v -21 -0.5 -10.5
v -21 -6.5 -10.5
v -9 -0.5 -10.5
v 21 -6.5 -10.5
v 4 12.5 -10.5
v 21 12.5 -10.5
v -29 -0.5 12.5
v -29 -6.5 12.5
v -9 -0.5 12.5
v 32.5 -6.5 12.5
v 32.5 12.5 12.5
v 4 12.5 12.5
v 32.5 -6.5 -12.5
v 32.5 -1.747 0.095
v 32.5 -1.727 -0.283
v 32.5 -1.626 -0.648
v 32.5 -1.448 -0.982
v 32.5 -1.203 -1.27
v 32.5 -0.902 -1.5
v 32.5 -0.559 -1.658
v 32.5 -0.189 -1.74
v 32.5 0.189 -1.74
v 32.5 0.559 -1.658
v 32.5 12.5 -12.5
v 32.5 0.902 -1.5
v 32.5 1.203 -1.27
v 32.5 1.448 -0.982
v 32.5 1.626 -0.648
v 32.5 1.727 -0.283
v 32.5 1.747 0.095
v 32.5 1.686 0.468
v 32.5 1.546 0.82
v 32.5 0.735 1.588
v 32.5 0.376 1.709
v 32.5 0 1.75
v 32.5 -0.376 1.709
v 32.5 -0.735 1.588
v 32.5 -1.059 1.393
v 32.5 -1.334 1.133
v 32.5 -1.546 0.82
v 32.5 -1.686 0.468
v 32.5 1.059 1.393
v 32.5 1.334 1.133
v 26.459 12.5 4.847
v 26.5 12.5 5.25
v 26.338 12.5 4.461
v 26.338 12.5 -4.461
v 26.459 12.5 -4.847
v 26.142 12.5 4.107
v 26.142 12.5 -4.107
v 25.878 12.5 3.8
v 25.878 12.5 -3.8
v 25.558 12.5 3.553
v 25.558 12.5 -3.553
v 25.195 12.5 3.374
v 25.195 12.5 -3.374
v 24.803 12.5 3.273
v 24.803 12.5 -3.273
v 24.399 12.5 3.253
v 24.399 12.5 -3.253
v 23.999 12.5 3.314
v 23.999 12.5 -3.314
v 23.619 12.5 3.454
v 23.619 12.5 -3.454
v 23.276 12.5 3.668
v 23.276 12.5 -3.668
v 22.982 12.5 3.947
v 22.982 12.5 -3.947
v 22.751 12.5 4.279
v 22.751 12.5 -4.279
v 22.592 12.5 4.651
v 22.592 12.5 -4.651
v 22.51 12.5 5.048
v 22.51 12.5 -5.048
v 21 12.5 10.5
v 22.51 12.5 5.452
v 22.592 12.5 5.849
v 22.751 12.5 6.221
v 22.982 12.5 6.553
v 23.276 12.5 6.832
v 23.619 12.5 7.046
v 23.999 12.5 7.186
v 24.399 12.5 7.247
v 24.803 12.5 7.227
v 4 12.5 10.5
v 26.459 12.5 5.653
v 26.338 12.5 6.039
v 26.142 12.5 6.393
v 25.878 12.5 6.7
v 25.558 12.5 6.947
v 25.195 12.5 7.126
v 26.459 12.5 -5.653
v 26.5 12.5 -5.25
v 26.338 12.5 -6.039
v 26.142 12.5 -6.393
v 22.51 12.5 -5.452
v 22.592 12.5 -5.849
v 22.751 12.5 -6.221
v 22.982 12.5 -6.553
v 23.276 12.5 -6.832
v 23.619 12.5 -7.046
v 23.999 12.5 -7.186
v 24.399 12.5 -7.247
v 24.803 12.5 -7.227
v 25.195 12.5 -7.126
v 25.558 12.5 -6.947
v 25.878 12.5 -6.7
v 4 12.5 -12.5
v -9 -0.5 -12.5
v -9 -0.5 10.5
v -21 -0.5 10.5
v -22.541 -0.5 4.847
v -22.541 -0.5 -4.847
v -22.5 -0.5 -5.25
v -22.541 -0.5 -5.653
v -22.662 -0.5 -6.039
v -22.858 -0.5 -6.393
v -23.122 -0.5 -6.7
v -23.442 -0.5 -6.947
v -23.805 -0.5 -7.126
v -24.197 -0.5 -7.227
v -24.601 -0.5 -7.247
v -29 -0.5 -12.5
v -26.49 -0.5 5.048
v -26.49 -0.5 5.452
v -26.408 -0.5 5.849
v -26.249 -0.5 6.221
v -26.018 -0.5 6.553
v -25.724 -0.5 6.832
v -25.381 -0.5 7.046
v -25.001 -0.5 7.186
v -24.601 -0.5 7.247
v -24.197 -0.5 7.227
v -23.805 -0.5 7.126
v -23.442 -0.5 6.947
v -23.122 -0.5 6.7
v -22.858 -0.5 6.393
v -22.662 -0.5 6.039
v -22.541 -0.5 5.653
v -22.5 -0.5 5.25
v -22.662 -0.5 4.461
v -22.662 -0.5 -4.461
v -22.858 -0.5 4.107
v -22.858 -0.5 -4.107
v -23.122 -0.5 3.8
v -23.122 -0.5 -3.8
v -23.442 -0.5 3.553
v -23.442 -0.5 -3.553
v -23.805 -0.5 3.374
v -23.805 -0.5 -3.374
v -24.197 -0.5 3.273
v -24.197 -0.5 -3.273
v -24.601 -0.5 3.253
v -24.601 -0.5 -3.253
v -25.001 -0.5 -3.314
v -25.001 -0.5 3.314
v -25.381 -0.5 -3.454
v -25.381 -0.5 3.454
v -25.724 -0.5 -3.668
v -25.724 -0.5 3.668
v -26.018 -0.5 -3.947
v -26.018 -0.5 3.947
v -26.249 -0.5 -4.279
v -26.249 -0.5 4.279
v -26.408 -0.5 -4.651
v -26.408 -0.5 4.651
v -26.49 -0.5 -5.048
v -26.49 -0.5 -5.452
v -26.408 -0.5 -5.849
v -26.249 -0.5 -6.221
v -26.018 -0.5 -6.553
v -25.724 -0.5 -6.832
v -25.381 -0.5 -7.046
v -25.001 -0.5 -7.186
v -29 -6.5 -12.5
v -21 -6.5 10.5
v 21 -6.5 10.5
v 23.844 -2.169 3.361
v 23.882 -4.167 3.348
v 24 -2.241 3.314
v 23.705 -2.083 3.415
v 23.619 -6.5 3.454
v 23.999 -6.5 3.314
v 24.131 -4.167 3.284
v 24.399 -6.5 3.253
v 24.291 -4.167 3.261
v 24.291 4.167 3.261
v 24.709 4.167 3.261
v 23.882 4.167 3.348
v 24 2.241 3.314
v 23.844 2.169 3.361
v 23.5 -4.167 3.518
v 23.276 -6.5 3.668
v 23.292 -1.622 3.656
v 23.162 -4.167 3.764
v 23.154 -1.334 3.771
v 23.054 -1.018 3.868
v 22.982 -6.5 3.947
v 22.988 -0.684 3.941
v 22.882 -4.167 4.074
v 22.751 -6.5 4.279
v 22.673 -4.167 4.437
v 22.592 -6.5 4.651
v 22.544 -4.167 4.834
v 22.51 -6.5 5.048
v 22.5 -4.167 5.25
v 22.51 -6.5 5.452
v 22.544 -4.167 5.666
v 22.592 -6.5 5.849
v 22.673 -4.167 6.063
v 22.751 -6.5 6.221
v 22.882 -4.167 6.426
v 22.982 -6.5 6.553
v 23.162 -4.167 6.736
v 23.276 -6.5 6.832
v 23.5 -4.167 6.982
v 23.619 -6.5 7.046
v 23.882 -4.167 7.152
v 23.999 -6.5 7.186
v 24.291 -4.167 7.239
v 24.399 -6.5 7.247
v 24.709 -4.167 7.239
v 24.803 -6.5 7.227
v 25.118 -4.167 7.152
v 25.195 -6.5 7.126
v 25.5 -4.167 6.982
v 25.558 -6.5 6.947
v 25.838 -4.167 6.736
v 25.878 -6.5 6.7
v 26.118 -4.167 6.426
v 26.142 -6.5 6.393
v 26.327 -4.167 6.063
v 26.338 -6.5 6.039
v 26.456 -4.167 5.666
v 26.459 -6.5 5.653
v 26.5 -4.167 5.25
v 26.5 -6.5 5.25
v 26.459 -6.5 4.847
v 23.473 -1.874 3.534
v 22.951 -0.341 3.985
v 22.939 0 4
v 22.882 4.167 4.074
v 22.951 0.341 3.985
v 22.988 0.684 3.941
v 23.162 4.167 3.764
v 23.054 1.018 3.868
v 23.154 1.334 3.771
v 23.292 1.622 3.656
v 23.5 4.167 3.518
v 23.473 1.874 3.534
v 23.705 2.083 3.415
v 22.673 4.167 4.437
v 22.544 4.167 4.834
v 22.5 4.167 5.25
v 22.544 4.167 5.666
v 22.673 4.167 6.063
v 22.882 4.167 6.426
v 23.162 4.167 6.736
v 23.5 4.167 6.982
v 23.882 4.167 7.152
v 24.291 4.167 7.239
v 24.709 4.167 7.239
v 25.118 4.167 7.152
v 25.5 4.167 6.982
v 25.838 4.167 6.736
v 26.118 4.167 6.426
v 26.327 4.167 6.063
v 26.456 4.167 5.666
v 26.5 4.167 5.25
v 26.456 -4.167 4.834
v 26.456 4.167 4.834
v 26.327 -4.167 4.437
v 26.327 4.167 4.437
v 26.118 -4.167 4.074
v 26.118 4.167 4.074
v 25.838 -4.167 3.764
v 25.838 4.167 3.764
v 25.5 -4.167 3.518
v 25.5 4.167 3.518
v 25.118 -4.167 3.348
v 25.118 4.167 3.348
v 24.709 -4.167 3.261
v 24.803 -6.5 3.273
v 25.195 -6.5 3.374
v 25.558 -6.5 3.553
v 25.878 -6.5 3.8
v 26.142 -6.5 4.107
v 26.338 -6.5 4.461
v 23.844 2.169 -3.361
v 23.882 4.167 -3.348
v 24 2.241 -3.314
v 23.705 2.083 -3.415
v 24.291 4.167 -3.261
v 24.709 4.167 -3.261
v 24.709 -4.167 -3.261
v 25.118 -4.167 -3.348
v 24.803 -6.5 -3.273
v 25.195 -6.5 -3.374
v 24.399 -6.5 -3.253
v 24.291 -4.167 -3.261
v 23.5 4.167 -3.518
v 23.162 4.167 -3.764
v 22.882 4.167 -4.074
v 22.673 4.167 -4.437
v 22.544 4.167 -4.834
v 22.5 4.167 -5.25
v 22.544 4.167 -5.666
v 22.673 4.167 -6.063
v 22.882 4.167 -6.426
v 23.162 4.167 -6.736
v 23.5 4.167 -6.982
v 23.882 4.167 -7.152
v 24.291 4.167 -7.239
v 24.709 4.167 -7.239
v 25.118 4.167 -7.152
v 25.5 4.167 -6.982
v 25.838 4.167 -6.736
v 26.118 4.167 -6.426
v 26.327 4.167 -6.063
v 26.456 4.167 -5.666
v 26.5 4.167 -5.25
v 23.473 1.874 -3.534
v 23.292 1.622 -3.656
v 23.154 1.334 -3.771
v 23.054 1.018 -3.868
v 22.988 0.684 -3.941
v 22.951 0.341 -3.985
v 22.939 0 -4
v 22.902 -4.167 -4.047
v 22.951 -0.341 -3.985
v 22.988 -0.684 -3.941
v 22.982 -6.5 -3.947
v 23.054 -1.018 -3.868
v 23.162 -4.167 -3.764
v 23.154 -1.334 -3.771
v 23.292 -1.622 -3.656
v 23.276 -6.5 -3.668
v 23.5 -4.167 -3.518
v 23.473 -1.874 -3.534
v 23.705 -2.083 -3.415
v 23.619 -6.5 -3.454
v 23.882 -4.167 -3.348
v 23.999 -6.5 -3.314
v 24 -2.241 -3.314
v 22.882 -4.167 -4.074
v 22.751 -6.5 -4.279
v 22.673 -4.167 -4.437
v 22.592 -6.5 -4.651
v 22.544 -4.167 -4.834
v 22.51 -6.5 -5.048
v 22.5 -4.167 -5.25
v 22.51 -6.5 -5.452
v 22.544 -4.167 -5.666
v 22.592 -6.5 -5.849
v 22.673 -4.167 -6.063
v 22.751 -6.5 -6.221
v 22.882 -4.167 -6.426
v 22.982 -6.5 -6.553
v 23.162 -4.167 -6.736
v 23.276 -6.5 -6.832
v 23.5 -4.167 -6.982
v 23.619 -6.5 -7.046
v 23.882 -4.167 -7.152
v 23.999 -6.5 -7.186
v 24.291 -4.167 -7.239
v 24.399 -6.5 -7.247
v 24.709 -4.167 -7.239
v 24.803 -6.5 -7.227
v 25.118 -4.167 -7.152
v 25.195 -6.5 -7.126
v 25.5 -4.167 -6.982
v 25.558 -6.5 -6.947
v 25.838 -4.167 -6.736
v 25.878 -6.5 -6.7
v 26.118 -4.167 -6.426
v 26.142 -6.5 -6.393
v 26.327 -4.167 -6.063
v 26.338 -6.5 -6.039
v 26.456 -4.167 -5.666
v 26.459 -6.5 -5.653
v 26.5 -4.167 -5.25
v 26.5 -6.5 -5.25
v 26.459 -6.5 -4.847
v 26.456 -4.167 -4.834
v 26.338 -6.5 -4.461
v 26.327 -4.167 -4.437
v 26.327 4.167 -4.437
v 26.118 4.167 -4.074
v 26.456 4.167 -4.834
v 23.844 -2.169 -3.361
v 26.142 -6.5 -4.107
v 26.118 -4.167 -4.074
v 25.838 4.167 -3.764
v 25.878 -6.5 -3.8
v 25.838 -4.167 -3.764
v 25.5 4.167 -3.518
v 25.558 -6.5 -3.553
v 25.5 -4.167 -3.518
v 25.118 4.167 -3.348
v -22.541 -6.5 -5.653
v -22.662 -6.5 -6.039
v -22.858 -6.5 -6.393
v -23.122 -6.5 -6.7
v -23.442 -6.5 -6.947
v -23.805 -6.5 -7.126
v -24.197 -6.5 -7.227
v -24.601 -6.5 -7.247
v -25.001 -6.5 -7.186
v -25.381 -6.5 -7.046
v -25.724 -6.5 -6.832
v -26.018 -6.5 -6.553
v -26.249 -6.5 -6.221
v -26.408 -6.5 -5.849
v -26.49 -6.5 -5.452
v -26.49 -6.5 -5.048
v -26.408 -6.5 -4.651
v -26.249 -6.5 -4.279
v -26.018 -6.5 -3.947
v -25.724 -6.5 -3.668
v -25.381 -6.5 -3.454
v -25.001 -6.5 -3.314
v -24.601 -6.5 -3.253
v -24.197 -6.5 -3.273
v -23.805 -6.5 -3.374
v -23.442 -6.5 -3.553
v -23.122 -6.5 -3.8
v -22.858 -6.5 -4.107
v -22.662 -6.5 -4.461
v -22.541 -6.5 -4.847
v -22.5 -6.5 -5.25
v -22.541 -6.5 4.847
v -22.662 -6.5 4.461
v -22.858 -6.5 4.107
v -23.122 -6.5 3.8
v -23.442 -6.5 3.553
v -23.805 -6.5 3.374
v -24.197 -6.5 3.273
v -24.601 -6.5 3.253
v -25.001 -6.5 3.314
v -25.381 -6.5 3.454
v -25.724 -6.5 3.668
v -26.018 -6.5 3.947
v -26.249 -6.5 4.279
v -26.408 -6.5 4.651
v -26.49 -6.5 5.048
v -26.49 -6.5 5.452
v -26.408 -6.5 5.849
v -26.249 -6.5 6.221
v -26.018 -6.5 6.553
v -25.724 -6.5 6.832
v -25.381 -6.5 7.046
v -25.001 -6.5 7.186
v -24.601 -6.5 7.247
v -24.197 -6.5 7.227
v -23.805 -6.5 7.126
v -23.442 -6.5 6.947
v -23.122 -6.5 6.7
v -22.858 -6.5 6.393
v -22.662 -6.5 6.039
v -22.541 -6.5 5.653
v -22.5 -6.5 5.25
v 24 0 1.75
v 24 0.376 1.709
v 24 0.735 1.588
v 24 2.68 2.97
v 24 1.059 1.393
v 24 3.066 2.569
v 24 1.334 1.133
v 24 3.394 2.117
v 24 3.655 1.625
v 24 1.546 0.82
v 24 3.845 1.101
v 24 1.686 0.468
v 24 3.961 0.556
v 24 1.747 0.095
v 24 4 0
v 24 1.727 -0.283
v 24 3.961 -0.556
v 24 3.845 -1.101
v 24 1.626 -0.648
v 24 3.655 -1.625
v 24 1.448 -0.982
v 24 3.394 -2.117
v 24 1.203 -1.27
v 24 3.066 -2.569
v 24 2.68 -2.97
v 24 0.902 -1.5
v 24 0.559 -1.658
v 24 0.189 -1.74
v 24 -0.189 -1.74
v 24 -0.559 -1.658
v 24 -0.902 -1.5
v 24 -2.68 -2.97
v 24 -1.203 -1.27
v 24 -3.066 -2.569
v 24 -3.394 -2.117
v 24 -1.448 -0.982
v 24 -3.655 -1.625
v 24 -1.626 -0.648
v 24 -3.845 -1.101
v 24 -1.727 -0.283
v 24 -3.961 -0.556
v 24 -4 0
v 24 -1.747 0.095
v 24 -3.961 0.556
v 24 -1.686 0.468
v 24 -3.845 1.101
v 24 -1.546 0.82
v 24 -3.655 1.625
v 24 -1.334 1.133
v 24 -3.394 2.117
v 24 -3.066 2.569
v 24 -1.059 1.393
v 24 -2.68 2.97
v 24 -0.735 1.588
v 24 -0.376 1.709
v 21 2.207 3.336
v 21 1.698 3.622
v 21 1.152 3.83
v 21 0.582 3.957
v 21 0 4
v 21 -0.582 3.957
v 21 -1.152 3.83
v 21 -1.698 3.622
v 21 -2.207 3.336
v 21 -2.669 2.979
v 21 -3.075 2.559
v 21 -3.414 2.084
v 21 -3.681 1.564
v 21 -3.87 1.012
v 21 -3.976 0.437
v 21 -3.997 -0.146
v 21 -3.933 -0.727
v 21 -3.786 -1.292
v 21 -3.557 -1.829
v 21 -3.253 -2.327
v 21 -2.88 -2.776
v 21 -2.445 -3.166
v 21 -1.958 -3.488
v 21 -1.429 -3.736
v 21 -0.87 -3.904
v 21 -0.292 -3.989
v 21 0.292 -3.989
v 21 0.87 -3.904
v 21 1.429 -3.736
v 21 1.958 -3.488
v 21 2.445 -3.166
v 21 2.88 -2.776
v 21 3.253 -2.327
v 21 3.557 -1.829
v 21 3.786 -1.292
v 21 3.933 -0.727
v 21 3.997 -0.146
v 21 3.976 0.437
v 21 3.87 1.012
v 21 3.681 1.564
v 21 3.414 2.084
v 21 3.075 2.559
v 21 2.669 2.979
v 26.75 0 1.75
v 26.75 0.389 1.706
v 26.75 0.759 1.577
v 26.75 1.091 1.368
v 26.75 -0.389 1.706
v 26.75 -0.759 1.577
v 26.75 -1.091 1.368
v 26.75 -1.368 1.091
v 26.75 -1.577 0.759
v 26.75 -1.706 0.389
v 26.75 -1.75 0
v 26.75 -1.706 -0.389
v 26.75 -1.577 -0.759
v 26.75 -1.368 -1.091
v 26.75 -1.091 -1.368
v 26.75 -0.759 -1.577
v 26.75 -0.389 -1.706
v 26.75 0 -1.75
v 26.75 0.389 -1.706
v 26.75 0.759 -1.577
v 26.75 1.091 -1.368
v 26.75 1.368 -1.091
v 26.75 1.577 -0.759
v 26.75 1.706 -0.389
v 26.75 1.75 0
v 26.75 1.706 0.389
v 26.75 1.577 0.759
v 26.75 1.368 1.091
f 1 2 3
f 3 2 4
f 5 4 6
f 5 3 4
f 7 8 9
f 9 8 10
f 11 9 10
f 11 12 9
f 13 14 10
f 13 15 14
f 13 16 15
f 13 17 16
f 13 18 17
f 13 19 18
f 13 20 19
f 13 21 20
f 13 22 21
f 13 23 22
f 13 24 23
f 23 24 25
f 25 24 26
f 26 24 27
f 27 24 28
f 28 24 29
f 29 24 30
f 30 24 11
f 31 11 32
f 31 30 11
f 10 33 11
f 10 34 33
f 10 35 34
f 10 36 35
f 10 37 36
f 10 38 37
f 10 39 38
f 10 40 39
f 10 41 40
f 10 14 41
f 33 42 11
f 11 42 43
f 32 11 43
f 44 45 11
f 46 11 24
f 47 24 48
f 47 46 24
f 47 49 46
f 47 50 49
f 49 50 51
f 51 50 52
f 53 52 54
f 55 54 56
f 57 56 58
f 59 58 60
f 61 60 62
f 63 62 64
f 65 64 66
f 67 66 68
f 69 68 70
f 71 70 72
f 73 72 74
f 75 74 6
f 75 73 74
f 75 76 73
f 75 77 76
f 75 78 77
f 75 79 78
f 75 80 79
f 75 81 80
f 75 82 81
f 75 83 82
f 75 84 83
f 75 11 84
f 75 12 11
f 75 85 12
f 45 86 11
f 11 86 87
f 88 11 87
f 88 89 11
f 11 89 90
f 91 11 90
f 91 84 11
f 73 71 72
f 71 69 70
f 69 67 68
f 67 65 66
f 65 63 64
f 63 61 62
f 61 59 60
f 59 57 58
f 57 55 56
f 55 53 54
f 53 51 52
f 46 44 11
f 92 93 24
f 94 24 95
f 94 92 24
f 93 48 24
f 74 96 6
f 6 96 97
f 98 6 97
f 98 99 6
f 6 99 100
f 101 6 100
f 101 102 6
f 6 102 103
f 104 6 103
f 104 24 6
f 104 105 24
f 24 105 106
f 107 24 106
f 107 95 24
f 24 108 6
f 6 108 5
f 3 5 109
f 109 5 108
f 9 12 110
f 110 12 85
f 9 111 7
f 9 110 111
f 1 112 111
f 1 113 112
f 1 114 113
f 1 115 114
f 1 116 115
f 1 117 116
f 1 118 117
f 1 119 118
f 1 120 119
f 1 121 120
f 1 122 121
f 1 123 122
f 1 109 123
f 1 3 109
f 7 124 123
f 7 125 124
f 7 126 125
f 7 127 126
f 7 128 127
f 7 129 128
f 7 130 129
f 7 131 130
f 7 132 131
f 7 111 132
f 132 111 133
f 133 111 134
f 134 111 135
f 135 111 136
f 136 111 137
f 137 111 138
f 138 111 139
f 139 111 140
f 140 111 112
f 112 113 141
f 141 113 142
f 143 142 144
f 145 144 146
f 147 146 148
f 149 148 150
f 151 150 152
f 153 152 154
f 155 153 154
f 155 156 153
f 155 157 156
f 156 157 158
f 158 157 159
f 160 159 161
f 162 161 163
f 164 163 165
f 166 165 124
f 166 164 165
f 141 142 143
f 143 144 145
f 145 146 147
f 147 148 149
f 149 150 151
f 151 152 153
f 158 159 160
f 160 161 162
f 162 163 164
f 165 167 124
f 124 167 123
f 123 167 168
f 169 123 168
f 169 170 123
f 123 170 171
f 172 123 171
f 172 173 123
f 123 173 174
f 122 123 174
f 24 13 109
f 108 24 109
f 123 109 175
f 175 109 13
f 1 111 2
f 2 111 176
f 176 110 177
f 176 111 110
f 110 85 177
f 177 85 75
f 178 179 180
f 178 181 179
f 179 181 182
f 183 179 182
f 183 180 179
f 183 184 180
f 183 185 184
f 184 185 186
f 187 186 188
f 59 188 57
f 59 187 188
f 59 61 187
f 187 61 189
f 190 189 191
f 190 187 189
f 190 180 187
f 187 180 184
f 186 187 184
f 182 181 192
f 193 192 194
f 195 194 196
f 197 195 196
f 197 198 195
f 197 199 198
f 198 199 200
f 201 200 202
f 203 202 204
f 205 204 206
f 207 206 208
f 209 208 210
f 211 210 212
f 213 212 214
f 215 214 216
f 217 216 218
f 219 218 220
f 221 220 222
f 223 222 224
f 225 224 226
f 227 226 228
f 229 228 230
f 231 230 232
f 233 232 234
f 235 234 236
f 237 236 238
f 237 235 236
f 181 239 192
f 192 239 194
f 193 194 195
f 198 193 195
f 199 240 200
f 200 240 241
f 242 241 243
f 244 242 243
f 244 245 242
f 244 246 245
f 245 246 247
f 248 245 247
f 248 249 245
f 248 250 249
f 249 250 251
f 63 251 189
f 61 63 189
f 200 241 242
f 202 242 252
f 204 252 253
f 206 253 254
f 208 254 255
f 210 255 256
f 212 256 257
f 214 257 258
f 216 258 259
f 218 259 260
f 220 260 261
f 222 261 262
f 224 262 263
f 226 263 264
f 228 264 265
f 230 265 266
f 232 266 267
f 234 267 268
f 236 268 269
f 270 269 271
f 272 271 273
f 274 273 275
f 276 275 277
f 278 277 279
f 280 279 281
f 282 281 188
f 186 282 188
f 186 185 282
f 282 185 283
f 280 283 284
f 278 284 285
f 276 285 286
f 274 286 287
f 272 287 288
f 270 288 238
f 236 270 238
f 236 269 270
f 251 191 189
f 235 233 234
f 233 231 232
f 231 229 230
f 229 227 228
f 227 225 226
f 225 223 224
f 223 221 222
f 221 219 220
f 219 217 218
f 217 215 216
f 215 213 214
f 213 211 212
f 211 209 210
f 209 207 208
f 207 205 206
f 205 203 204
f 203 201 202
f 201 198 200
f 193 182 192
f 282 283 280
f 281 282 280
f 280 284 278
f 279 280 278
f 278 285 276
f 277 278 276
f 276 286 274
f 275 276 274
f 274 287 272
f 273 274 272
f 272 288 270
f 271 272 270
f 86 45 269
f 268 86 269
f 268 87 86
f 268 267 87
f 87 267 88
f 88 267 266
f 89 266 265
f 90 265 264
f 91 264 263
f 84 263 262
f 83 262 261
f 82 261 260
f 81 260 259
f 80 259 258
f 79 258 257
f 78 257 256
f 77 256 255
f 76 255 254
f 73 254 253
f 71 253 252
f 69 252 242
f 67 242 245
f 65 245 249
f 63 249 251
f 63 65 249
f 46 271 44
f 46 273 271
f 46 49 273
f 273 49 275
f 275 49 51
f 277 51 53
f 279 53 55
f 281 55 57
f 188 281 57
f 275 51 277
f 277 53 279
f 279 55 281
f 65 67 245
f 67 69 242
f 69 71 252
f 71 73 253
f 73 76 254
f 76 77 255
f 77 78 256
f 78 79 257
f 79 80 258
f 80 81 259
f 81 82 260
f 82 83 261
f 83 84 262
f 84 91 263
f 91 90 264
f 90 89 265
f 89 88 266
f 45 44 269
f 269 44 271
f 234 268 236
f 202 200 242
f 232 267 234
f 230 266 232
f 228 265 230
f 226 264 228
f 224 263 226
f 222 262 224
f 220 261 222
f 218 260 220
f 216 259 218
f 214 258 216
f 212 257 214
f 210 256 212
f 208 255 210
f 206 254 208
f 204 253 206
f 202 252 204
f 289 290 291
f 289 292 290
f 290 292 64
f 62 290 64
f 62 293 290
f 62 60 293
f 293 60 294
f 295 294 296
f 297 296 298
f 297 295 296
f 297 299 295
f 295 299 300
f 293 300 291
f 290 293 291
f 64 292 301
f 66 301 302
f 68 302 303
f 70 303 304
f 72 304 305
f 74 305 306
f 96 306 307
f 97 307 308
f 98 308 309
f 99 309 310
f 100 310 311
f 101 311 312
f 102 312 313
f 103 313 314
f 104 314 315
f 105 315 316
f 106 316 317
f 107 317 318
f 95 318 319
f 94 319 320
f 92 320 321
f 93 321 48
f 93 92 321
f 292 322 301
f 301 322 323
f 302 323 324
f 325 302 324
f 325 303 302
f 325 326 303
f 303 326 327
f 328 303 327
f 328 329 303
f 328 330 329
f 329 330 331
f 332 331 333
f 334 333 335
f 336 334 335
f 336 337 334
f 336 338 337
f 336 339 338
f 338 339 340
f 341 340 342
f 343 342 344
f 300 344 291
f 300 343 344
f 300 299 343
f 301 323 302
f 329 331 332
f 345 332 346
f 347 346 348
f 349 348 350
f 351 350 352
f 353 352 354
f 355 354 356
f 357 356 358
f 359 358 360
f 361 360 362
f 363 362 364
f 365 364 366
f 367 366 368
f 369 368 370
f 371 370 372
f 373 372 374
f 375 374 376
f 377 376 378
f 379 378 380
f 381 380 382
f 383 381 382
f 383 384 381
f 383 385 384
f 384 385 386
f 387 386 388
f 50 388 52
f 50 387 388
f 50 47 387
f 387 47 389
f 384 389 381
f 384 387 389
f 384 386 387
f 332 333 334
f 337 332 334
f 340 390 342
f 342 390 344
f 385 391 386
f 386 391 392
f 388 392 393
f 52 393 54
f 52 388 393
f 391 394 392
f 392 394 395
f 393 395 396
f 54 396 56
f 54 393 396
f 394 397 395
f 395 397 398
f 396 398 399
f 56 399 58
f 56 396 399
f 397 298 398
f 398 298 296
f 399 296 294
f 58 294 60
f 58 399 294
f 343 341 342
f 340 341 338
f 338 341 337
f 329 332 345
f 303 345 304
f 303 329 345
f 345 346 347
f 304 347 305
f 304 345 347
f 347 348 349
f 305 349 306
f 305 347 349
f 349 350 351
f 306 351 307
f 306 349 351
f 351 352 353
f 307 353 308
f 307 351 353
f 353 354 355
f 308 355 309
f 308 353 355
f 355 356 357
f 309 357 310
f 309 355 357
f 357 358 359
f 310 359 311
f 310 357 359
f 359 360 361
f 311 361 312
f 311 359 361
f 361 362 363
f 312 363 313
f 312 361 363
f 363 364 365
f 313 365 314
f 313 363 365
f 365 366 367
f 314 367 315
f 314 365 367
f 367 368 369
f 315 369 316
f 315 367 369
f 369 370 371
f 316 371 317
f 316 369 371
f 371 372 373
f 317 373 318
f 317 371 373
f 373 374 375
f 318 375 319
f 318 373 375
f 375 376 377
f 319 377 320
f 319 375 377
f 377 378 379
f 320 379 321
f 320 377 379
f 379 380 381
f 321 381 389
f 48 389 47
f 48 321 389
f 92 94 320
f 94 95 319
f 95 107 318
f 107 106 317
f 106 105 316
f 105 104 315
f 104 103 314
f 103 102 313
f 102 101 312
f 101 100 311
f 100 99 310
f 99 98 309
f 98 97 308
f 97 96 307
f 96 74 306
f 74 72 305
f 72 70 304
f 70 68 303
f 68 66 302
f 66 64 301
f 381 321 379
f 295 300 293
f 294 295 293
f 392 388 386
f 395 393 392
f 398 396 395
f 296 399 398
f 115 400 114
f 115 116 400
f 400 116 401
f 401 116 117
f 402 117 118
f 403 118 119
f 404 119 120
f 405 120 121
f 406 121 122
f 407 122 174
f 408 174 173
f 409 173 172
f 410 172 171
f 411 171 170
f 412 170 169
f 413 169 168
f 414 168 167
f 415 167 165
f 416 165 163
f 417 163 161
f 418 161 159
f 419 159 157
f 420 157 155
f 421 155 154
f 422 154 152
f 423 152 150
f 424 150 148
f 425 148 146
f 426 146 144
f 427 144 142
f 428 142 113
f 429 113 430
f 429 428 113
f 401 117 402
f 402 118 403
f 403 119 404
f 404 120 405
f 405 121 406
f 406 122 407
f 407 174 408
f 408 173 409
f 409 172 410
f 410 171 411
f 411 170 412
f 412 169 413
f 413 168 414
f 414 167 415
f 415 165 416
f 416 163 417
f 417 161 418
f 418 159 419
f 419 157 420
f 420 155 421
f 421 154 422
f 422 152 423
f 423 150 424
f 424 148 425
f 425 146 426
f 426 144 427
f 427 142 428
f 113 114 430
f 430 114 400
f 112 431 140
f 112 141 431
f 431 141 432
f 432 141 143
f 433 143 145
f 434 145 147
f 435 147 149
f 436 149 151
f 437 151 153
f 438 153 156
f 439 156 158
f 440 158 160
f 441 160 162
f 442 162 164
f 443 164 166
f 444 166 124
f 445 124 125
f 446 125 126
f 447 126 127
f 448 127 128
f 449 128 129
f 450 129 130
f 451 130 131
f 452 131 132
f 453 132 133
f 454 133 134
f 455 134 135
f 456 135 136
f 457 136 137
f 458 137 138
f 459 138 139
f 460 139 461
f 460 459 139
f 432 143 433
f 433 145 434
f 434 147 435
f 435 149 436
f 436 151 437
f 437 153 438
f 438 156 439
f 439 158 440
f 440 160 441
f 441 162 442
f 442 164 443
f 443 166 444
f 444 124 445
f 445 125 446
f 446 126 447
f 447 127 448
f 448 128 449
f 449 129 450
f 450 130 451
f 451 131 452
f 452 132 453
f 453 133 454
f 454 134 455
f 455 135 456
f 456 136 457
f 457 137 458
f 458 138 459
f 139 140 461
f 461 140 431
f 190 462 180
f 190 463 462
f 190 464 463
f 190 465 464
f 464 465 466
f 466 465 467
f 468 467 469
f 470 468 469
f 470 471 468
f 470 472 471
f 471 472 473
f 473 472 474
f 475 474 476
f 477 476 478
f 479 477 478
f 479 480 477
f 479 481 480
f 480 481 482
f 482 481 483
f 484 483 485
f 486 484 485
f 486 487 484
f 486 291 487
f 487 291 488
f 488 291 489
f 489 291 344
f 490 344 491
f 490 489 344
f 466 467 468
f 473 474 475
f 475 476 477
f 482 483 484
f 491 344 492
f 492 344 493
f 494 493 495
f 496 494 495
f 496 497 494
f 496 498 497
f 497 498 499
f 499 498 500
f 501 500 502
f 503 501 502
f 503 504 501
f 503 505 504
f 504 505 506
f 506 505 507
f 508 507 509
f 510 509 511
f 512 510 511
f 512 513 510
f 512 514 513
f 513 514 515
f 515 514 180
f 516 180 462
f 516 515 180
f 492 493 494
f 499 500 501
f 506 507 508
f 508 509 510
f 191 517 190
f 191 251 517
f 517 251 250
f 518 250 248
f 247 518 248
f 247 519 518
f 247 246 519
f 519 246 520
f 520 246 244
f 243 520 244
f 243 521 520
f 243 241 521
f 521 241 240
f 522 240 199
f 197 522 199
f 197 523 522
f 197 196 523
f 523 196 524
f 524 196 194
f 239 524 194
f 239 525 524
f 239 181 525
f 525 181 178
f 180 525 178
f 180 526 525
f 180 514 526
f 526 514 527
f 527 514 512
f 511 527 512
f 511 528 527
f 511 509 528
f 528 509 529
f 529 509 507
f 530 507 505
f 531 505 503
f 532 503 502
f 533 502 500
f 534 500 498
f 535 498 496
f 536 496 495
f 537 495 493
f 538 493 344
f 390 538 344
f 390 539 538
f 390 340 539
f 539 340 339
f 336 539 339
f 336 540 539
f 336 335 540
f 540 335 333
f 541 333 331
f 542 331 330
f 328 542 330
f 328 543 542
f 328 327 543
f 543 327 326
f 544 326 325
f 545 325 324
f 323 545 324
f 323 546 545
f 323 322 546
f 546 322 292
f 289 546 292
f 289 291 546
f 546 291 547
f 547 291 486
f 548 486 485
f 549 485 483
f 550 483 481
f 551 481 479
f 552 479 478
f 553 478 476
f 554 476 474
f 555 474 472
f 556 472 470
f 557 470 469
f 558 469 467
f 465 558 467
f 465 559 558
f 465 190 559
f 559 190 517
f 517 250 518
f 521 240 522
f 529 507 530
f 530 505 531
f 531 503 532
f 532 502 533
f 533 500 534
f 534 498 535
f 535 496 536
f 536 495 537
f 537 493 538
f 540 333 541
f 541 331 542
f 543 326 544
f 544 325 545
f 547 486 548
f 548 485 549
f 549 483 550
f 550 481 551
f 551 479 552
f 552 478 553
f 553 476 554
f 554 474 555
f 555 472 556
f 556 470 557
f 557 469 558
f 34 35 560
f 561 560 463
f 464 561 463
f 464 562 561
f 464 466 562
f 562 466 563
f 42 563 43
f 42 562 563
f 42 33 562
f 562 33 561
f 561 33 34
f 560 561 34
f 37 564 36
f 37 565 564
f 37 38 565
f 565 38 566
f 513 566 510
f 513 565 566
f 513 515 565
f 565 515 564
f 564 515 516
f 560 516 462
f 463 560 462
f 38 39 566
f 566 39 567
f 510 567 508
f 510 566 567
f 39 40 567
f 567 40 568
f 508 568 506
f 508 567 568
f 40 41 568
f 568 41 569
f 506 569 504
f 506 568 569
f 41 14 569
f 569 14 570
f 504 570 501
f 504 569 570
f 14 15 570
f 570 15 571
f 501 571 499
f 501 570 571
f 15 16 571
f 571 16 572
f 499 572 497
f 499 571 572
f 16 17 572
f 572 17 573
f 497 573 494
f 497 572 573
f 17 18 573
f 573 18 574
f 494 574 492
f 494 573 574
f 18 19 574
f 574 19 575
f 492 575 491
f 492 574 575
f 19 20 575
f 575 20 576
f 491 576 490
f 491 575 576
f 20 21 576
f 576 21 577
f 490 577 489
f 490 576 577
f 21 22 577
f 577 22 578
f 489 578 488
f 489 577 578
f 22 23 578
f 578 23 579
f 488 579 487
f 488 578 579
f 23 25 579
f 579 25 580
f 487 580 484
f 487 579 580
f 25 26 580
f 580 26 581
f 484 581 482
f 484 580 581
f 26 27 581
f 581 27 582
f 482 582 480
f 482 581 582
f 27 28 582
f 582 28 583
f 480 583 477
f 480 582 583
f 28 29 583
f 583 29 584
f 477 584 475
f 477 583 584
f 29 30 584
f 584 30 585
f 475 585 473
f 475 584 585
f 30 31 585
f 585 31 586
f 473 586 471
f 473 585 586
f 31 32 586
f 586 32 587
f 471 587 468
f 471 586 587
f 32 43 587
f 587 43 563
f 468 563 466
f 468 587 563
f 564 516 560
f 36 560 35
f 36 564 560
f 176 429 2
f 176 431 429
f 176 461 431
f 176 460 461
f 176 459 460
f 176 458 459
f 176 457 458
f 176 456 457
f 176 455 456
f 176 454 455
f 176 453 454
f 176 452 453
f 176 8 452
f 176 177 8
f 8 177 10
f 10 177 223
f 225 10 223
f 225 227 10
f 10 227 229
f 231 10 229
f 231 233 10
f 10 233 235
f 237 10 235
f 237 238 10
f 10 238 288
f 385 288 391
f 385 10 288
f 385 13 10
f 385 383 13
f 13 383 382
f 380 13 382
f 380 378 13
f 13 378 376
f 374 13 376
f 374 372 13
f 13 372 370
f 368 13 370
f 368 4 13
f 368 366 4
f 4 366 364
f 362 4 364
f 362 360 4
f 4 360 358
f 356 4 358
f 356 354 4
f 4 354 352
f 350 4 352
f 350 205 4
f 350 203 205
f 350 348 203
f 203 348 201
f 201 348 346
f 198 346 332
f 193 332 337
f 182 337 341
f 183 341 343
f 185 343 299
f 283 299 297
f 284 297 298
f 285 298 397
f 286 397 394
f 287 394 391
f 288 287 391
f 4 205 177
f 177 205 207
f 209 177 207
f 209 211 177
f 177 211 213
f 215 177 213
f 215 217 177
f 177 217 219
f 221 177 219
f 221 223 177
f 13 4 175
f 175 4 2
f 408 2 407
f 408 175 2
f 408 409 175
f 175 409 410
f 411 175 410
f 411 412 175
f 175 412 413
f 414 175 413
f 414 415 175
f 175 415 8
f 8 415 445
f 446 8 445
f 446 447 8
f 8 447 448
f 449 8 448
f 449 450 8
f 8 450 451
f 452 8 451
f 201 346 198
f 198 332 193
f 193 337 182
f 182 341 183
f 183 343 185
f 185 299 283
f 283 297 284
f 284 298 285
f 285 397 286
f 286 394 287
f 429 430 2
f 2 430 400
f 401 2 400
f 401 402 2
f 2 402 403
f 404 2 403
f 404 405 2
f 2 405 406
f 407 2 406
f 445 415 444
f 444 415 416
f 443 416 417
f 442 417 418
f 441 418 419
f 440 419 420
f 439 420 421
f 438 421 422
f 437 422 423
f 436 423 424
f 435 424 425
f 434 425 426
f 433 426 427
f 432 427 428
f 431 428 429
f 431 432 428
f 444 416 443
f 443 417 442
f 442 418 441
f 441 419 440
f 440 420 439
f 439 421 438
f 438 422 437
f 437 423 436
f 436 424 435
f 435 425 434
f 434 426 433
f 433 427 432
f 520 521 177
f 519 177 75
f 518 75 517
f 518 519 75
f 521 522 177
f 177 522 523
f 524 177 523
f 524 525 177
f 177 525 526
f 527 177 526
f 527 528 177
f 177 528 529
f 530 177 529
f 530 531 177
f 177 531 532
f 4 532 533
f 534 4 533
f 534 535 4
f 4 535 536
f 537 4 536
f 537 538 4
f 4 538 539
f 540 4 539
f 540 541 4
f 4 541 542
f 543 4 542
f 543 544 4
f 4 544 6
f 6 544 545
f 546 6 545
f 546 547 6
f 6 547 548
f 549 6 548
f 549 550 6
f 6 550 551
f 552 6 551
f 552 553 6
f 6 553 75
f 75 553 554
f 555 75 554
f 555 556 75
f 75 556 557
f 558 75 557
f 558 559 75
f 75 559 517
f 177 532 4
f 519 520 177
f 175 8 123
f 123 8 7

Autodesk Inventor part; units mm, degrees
ref_plane "YZ Plane" through (0, 0, 0) normal (1, 0, 0) x (0, 1, 0)
ref_plane "XZ Plane" through (0, 0, 0) normal (0, 1, 0) x (-1, 0, 0)
ref_plane "XY Plane" through (0, 0, 0) normal (0, 0, 1) x (1, 0, 0)
sketch "Esquisse1" plane through (0, 0, 0) normal (0, 1, 0) x (-1, 0, 0)
  line L0 (21, 10.5) -> (-21, 10.5)
  line L1 (-21, 10.5) -> (-21, -10.5)
  line L2 (-21, -10.5) -> (21, -10.5)
  line L3 (21, -10.5) -> (21, 10.5)
  line L4 (29, 12.5) -> (-37, 12.5)
  line L5 (-37, 12.5) -> (-37, -12.5)
  line L6 (-37, -12.5) -> (29, -12.5)
  line L7 (29, -12.5) -> (29, 12.5)
  line L8 (-37, -12.5) -> (-46.0993, 12.5)
  line L9 (-46.0993, 12.5) -> (-37, 12.5)
  point P0 (0, 0)
  dimension "d0" = 20
  dimension "d1" = 42
  dimension "d2" = 21
  dimension "d3" = 10.5
  dimension "d4" = 21
  dimension "d5" = 8
  dimension "d6" = 2
  dimension "d7" = 2
  dimension "d8" = 16
extrude "Extrusion1" add sketch "Esquisse1" along normal mid plane 25
sketch "Esquisse2" plane through (37, -12.5, -12.5) normal (0.9397, 0, -0.342) x (-0.342, 0, -0.9397)
  line L0 (-26.6044, 25) -> (0, 0)
  line L1 (0, 0) -> (0, 25)
  line L2 (0, 25) -> (-26.6044, 0)
  arc A0 (-8.3022, 22.298) -> (-18.3022, 22.298) centre (-13.3022, 12.5) ccw
  line L3 (-18.3022, 22.298) -> (-8.3022, 22.298)
  line L4 (-8.3022, 22.298) -> (-8.3022, 2.702)
  line L5 (-8.3022, 2.702) -> (-18.3022, 2.702)
  line L6 (-18.3022, 2.702) -> (-18.3022, 22.298)
  arc A1 (-8.3022, 2.702) -> (-8.3022, 22.298) centre (-13.3022, 12.5) ccw
  arc A2 (-18.3022, 2.702) -> (-8.3022, 2.702) centre (-13.3022, 12.5) ccw
  arc A3 (-18.3022, 22.298) -> (-18.3022, 2.702) centre (-13.3022, 12.5) ccw
  point P0 (0.9086, 12.5)
  point P1 (-26.6044, 25)
  point P2 (-26.6044, 0)
  dimension "d11" = 22
  dimension "d13" = 10
extrude "Extrusion2" add sketch "Esquisse2" along normal blind 5 contours A3 L6 L0 | L0 L6 L2 A3 | L6 L3 L4 L2 L0 | L0 L2 L6 | L2 L6 A3 | L2 L4 L0 | L0 L4 L5 L6 L2 | A1 L2 L4 | L4 L2 A1 L0 | L0 A1 L4
sketch "Esquisse3" plane through (39.8395, -9.798, -4.6985) normal (0, -1, 0) x (0.9397, 0, -0.342)
  line L0 (5, 10) -> (0, 0)
  line L1 (0, 10) -> (5, 0)
  circle A0 centre (2.5, 5) radius 1.75
  point P0 (-39.0439, -9.2108)
  dimension "d16" = 3.5
extrude "Extrusion3" cut sketch "Esquisse3" against normal through all
sketch "Esquisse4" plane through (21, -12.5, 10.5) normal (-1, 0, 0) x (0, 0, 1)
  line L0 (-21, 3) -> (0, 3)
  line L1 (0, 3) -> (0, 6)
  line L2 (0, 6) -> (-21, 6)
  line L3 (-21, 6) -> (-21, 3)
  line L4 (-21, 0) -> (-21, 25) projected
  line L5 (0, 0) -> (0, 25) projected
  line L6 (0, 0) -> (-21, 0) projected
  point P0 (-10.5, 12.5)
  dimension "d19" = 3
  dimension "d20" = 3
extrude "Extrusion4" cut sketch "Esquisse4" against normal blind 7 contours L3 L2 L1 L0
sketch "Esquisse5" plane through (-21, -12.5, -10.5) normal (1, 0, 0) x (0, 0, -1)
  line L0 (-21, 6) -> (0, 6)
  line L1 (0, 6) -> (0, 3)
  line L2 (0, 3) -> (-21, 3)
  line L3 (-21, 3) -> (-21, 6)
  line L4 (-21, 25) -> (-21, 0) projected
  line L5 (0, 0) -> (0, 25) projected
  line L6 (0, 0) -> (-21, 0) projected
  point P0 (-10.5, 12.5)
  dimension "d23" = 3
  dimension "d24" = 3
extrude "Extrusion5" cut sketch "Esquisse5" against normal blind 7 contours L0 L1 L2 L3
sketch "Esquisse6" plane through (21, 12.5, -10.5) normal (-1, 0, 0) x (0, 0, 1)
  line L0 (21, -25) -> (0, 0)
  line L1 (0, -25) -> (21, 0)
  circle A0 centre (10.5, -12.5) radius 3
  dimension "d27" = 6
extrude "Extrusion6" cut sketch "Esquisse6" against normal through all
sketch "Esquisse7" plane through (21, 12.5, -10.5) normal (-1, 0, 0) x (0, 0, 1)
  circle A0 centre (10.5, -12.5) radius 3
  circle A1 centre (10.5, -12.5) radius 1.75
  circle A2 centre (10.5, -12.5) radius 3 projected
  dimension "d30" = 0
  dimension "d31" = 3.5
extrude "Extrusion7" add sketch "Esquisse7" against normal blind 18
sketch "Esquisse8" plane through (21, 12.5, -10.5) normal (-1, 0, 0) x (0, 0, 1)
  circle A0 centre (10.5, -12.5) radius 4
  dimension "d34" = 8
extrude "Extrusion8" cut sketch "Esquisse8" against normal blind 3
sketch "Esquisse10" plane through (0, -12.5, 0) normal (0, -1, 0) x (1, 0, 0)
  line L0 (-21, -10.5) -> (-28, -10.5)
  line L1 (-28, -10.5) -> (-28, 10.5)
  line L2 (-28, 10.5) -> (-21, 10.5)
  line L3 (-21, 10.5) -> (-21, -10.5)
  line L4 (21, -10.5) -> (28, -10.5)
  line L5 (28, -10.5) -> (28, 10.5)
  line L6 (28, 10.5) -> (21, 10.5)
  line L7 (21, 10.5) -> (21, -10.5)
  line L8 (-28, -10.5) -> (-28, 10.5) projected
  line L9 (28, 10.5) -> (28, -10.5) projected
  line L10 (-28, -10.5) -> (-21, 0)
  line L11 (-21, 0) -> (-28, 10.5)
  line L12 (-28, 0) -> (-21, 10.5)
  line L13 (-21, -10.5) -> (-28, 0)
  line L14 (21, -10.5) -> (28, 0)
  line L15 (21, 0) -> (28, -10.5)
  line L16 (28, 10.5) -> (21, 0)
  line L17 (21, 10.5) -> (28, 0)
  circle A0 centre (-24.5, -5.25) radius 2
  circle A1 centre (24.5, -5.25) radius 2
  circle A2 centre (24.5, 5.25) radius 2
  circle A3 centre (-24.5, 5.25) radius 2
  point P0 (0, 0)
  dimension "d37" = 4
  dimension "d38" = 4
  dimension "d39" = 4
  dimension "d40" = 4
extrude "Extrusion9" cut sketch "Esquisse10" against normal through all contours A0 L10 L13 | L13 L10 A0 | A0 L13 L10 | L10 L13 A0 | A3 L12 L11 | L11 L12 A3 | A3 L11 L12 | L12 L11 A3 | A1 L15 L14 | L14 L15 A1 | L15 L14 A1 | A1 L14 L15 | A2 L17 L16 | L16 L17 A2 | L17 L16 A2 | A2 L16 L17
sketch "Esquisse11" plane through (37, 12.5, -12.5) normal (0, 0, -1) x (-1, 0, 0)
  line L0 (66, 0) -> (46, 0)
  line L1 (46, 0) -> (46, -13)
  line L2 (46, -13) -> (66, -13)
  line L3 (66, -13) -> (66, 0)
  line L4 (66, -25) -> (0, -25) projected
  line L5 (46, -13) -> (33, 0)
  line L6 (0, 0) -> (66, 0) projected
  line L7 (45, 0) -> (33, 0)
  point P0 (37, -12.5)
  dimension "d43" = 20
  dimension "d44" = 12
  dimension "d45" = 45
extrude "Extrusion10" cut sketch "Esquisse11" against normal through all
sketch "Esquisse12" plane through (-29, -12.5, 12.5) normal (0, 0, 1) x (1, 0, 0)
  line L0 (33, 25) -> (75.0993, 25) projected
  line L1 (75.0993, 0) -> (61.5, 0)
  line L2 (61.5, 0) -> (61.5, 25)
  line L3 (61.5, 25) -> (75.0993, 25)
  line L4 (75.0993, 25) -> (75.0993, 0)
  line L5 (57, 6) -> (57, 3) projected
  line L6 (66, 25) -> (66, 0) projected
  line L7 (61.5, 25) -> (0, 25)
  line L8 (0, 25) -> (0, 0)
  line L9 (0, 0) -> (61.5, 0)
  line L10 (61.5, 0) -> (61.5, 25)
  line L11 (75.0993, 0) -> (79.0103, 0)
  line L12 (79.0103, 0) -> (79.0103, 25)
  line L13 (79.0103, 25) -> (75.0993, 25)
  line L14 (75.0993, 25) -> (75.0993, 0)
  ellipse E0 centre (75.2481, 12.5) end of major axis (75.2481, 1.5) minor radius 3.7622 (76.9582, 2.702) -> (76.9582, 22.298) ccw projected
  point P0 (29, 12.5)
  dimension "d48" = 9
  dimension "d49" = 4.5
extrude "Extrusion12" cut sketch "Esquisse12" against normal through all contours L0 L6 L1 L2 | L0 L4 L1 L6 | L13 L12 L11 L4
sketch "Esquisse13" plane through (-29, -0.5, 12.5) normal (0, 0, 1) x (1, 0, 0)
  line L0 (0, -12) -> (0, 0) projected
  line L1 (61.5, -12) -> (0, -12)
  line L2 (0, -12) -> (0, -6)
  line L3 (0, -6) -> (61.5, -6)
  line L4 (61.5, -6) -> (61.5, -12)
  line L5 (61.5, 13) -> (0, 13)
  line L6 (0, 13) -> (0, -6)
  line L7 (0, -6) -> (61.5, -6)
  line L8 (61.5, -6) -> (61.5, 13)
  point P0 (29, 0.5)
  dimension "d54" = 6
extrude "Extrusion13" cut sketch "Esquisse13" against normal through all contours L0 L3 L4 L1
equation "\"d3\" = 0.5 * d2"
equation "\"d4\" = 0.5 * d1"
equation "\"d38\" = d37"
equation "\"d39\" = d37"
equation "\"d40\" = d37"
equation "\"d49\" = 0.5 * d48"
properties part number "forearm"
